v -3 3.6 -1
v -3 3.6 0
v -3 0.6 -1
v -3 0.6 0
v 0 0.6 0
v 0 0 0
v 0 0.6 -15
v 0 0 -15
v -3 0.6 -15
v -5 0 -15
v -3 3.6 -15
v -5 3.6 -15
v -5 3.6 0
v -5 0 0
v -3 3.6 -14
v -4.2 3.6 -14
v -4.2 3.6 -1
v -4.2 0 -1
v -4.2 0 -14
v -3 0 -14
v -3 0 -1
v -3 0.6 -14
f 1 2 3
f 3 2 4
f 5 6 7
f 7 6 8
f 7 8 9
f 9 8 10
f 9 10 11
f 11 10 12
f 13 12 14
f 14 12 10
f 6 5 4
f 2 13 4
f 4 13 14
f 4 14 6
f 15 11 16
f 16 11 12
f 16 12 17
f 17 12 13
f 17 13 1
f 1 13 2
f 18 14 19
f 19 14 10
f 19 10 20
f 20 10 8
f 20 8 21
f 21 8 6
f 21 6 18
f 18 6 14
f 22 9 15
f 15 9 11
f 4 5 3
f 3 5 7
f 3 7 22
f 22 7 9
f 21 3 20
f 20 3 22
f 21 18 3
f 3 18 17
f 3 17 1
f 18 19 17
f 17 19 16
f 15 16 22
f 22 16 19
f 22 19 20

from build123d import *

# Parameters (mm, degrees)
ESBO_O1_W                = 5
ESBO_O1_H                = 15
RESSALTO_EXTRUS_O1_DEPTH = 3.6
ESBO_O2_W                = 3
ESBO_O2_H                = 15
CORTE_EXTRUS_O2_DEPTH    = 3
ESBO_O3_W                = 1.2
ESBO_O3_H                = 13
CORTE_EXTRUS_O3_DEPTH    = 17.21604144


with BuildPart() as part:
    # Esboço1 → Ressalto-extrusão1 (new body)
    with BuildSketch(Plane(origin=(0, 0, 0), x_dir=(1, 0, 0), z_dir=(0, 1, 0))):
        with Locations((-2.5, 7.5)):
            Rectangle(ESBO_O1_W, ESBO_O1_H)
    extrude(amount=RESSALTO_EXTRUS_O1_DEPTH)

    # Esboço2 → Corte-extrusão2 (cut)
    with BuildSketch(Plane(origin=(0, 3.6, 0), x_dir=(1, 0, 0), z_dir=(0, 1, 0))):
        with Locations((-1.5, 7.5)):
            Rectangle(ESBO_O2_W, ESBO_O2_H)
    extrude(amount=-CORTE_EXTRUS_O2_DEPTH, mode=Mode.SUBTRACT)

    # Esboço3 → Corte-extrusão3 (cut, through all)
    with BuildSketch(Plane(origin=(0, 3.6, 0), x_dir=(1, 0, 0), z_dir=(0, 1, 0))):
        with Locations((-3.6, 7.5)):
            Rectangle(ESBO_O3_W, ESBO_O3_H)
    extrude(amount=-CORTE_EXTRUS_O3_DEPTH, mode=Mode.SUBTRACT)


solid = part.part
